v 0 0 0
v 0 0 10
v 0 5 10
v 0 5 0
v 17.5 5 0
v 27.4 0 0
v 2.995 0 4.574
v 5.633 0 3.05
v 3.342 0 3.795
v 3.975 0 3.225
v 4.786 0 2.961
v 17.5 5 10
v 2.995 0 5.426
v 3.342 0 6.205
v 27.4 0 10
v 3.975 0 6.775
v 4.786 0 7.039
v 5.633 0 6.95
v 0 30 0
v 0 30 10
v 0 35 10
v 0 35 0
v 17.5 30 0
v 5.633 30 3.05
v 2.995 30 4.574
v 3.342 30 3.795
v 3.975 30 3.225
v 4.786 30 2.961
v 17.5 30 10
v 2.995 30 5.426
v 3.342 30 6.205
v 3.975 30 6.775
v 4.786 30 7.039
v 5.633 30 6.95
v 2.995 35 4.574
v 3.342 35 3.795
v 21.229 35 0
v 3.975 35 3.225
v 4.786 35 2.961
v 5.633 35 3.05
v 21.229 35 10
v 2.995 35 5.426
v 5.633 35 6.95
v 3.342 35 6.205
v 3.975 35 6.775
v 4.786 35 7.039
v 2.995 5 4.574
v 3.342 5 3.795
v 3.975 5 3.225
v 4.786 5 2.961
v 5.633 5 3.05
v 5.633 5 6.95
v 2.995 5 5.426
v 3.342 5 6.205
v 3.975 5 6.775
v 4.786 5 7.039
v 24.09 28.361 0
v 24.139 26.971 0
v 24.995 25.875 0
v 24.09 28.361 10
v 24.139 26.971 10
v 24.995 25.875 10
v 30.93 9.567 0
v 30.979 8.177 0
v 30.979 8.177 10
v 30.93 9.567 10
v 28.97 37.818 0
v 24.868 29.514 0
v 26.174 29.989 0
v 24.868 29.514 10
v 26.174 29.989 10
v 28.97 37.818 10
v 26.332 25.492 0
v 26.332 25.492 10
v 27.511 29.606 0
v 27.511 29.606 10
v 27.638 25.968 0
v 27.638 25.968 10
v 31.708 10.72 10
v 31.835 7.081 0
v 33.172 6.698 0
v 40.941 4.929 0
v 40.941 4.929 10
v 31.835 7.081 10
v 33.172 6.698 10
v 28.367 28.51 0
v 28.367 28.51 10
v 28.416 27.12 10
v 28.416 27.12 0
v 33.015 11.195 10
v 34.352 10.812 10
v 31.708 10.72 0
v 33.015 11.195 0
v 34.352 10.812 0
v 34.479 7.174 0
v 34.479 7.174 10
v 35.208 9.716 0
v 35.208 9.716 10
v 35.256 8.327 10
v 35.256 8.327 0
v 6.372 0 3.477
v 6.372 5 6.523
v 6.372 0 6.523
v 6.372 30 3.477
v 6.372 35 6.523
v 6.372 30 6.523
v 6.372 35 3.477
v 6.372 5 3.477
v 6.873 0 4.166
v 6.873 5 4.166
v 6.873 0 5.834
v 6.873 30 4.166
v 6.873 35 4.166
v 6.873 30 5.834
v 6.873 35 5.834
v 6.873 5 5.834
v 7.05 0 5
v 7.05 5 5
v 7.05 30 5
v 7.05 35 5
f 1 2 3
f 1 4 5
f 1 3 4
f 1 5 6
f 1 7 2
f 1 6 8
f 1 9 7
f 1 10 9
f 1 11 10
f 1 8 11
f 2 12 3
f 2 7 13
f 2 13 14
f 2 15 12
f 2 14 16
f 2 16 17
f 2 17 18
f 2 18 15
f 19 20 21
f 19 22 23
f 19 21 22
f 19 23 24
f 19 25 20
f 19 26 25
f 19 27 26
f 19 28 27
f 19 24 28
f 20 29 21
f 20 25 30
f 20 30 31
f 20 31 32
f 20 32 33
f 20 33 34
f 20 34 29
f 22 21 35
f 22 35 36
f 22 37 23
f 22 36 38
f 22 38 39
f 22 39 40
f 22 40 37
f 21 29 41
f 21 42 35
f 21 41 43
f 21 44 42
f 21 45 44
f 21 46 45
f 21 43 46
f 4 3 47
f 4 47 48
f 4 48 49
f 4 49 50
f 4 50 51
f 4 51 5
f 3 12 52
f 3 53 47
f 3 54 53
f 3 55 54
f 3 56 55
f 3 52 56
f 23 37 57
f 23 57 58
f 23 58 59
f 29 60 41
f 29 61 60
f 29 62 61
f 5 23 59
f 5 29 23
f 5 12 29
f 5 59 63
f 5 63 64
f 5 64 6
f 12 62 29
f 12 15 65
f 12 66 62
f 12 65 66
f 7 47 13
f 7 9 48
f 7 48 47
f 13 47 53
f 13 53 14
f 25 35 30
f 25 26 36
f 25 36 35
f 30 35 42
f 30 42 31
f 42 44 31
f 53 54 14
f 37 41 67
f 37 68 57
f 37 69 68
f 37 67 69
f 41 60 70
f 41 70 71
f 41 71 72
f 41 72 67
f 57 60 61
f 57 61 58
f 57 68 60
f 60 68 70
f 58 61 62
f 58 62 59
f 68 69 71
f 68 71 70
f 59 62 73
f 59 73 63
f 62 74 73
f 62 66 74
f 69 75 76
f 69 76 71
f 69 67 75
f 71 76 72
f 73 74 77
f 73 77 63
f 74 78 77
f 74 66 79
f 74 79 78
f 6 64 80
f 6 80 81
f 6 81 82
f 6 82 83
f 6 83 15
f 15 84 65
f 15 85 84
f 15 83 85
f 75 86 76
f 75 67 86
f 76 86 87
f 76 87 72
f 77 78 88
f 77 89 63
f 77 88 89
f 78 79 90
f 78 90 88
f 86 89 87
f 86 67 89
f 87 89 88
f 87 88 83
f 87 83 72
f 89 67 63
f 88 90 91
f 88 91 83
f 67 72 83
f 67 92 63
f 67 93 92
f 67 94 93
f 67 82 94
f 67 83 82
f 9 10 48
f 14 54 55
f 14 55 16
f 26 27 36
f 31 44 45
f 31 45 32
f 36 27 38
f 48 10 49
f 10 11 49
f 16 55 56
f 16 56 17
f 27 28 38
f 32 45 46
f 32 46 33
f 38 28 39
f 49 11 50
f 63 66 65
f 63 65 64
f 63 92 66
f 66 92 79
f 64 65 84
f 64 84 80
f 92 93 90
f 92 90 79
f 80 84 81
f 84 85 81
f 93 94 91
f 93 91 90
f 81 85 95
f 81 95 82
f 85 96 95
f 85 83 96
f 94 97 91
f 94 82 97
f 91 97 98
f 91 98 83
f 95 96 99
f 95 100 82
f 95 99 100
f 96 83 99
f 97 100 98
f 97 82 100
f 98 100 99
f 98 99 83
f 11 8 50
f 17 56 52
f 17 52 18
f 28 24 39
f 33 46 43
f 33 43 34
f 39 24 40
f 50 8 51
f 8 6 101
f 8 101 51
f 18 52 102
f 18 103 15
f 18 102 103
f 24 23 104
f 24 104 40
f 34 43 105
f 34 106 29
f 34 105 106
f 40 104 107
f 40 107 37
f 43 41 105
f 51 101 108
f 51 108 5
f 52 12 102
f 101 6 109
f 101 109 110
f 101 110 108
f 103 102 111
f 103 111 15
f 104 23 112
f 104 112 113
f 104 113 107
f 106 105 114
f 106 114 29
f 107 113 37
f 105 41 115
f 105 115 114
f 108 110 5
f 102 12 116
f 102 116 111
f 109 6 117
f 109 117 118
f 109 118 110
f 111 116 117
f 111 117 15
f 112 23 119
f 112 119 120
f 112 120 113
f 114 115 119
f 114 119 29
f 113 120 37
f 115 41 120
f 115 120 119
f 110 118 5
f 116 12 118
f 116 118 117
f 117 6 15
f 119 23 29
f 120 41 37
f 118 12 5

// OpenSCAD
// file: ../Parameters.scad
//Main tube diameter - hole [mm]
main_tube_outer_diameter = 25.4;
main_tube_inner_diameter = 23.5;

//Tube for undercarriage - hole [mm]
tube_for_undercarriage_outer_diameter = 10.6;
tube_for_undercarriage_inner_diameter = 6;
global_clearance = 0.5;


//umístění podvozkových trubek

second_undercarriage_hole = main_tube_outer_diameter*2 + main_tube_outer_diameter/5 + main_tube_outer_diameter/2 + 170 + 160;

// Parameters of cube couplings
coupling_wall_thickness = main_tube_outer_diameter/5;  //width of coupling walls 
thickness_between_tubes = main_tube_outer_diameter/10;    // minimum distance between tubes in couplings

coupling_wall_thickness_undercarriage = tube_for_undercarriage_outer_diameter/3;
thickness_between_tubes_undercarriage = tube_for_undercarriage_outer_diameter/10;

//Screw diameter and nut for M4 [mm]
M4_screw_diameter=4.5;
Nut_height_M4 = 3.2;
Nut_diameter_M4 = 7.86;


//Screw diameter and nut for M3 [mm]
M3_screw_diameter = 3.2;
Nut_height_M3 = 1.7;	
Nut_diameter_M3 = 6.6; 


//The tube for help
Help_main_tube_outer = 25;
Help_main_tube_inner = 23; 
Help_tube_for_undercarriage_outer = 10;
Help_tube_for_undercarriage_inner = 5;


//main hull parameters

hull_drop_length = 580;
hull_wall_thickness = 0.8;
hull_y_size = 120;
hull_z_size = 150;
hull_x_size = 580;
hull_corner_radius = 4;
hull_airfoil_thickness= 35;  // thickness of drop generating airfoil in percent of lenght.
hull_scale_x = 1;
hull_scale_y = 1.5;
hull_scale_z = 1.5;

main_pilon_position = 170+68;
cover_pilon_position = 180;
height_of_vertical_tube = 275; //278mm je změřená délka trubky. 

ribbon_width = 5; // šířka vyztužovacích lemů. 

// šířka otvoru v přední části kapoty pro držák motoru.
width_of_engine_holder = 63;

//Top Cover Division - dělení horního krytu pro tisk
top_cover_division = [0, 50, 150, 280, 410, hull_x_size]; // upraveny seznam tak, aby deleni začinalo od nuly, což umožňí úplně automatické rozdělení.

//Bottom Cover Division - dělení dolního krytu pro tisk
bottom_cover_division = [0,100,250,365, 470, hull_x_size];
// zkrácená část pro payload pro testovací tisk
//bottom_cover_division = [0,200,250,365, 470, hull_x_size];

//Base Divison - dělení podložky
base_division = [0,140,280,410, hull_x_size];

//Cover pilon division - na výšku (v ose Z)
cover_pilon_division = [0,170,height_of_vertical_tube + main_tube_outer_diameter + coupling_wall_thickness];

//pozice šroubů
	//horní kryt
top_screw_position = [0, (top_cover_division[0] + top_cover_division[1])/4, (top_cover_division[2] - top_cover_division[1])/2 + top_cover_division[1], (top_cover_division[3] - top_cover_division[2])/2 + top_cover_division[2],(top_cover_division[4] - top_cover_division[3])/2 + top_cover_division[3],(top_cover_division[5] - top_cover_division[4])/2 + top_cover_division[4] - 20];
	//spodní kryt
bottom_screw_position = [0,(bottom_cover_division[0] + bottom_cover_division[1])/15 + 5, bottom_cover_division[1]/1.1, + bottom_cover_division[3], bottom_cover_division[3] + bottom_cover_division[1]/2, bottom_cover_division[4] - 6*global_clearance, bottom_cover_division[4] + bottom_cover_division[1]/2.5];




//šířka zámků
lock_width = 10;

//délka zámků
lock_length = 3;


//accumulator
//základní rozměry akumulátoru
width_of_accumulator = 129.4;//45+1;
depth_of_accumulator = 40.61;
height_of_accumulator = 43.65;
//Zapuštění akumulátoru
sink_of_accumulator = 5; //main_tube_outer_diameter/5 - Nut_height_M3*1.5;

//tloušťka hrany spojky
accumulator_holder_width = 18; 
accumulator_holder_thickness = 10; 

//posunutí akumálátoru na podložce
move_of_accumulator = 165;   // pozice akumulátoru (ovlivňuje těžiště)


////////////////
// Senzory
///////////////////

//opticalFlow
    width_optical_flow_senzor = 45.5;
    depth_optical_flow_senzor = 6;
    height_optical_flow_senzor = 35;
    sink_of_optical_flow_senzor = depth_optical_flow_senzor - 5; 
    M3_optical_flow_senzor_Z = 30.4;
    M3_optical_flow_senzor_X = 24;
    M3_optical_flow_senzor_Z_alone = 9.1;
    M3_optical_flow_senzor_X_alone = 16.7;
// file: lib/naca4.scad
// Naca4.scad - library for parametric airfoils of 4 digit NACA series
// Code: Rudolf Huttary, Berlin 
// June 2015
// commercial use prohibited


// general use: for more examples refer to sampler.scad
// naca = naca digits or 3el vector  (default = 12 or [0, 0, .12])
// L    = chord length [mm]      (default= 100)
// N    = # sample points        (default= 81)
// h    = height [mm]            (default= 1)
// open = close at the thin end? (default = true)
// two equivalent example calls
 airfoil(naca = 2408, L = 60, N=1001, h = 30, open = false); 
// airfoil(naca = [.2, .4, .32], L = 60, N=1001, h = 30, open = false); 

module help()
{
  echo(str("\n\nList of signatures in lib:\n=================\n", 
  "module airfoil(naca=2412, L = 100, N = 81, h = 1, open = false) - renders airfoil object\n", 
  "module airfoil(naca=[.2, .4, .12], L = 100, N = 81, h = 1, open = false) - renders airfoil object using percentage for camber,  camber distance and thicknes\n", 
  "function airfoil_data(naca=12, L = 100, N = 81, open = false)\n",
  "=================\n")); 
}

help(); 
// this is the object
module airfoil(naca=12, L = 100, N = 81, h = 1, open = false)
{
  linear_extrude(height = h)
  polygon(points = airfoil_data(naca, L, N, open)); 
}

module hollow_airfoil(lnaca=12, L = 100, N = 81, h = 1, open = false, wall_thickness = 1)
{
    if (open){
        linear_extrude(height = h)

        if (wall_thickness>0){
            difference(){
                polygon(points = airfoil_data(naca, L, N, false));
                offset(delta = - wall_thickness, chamfer = false) polygon(points = airfoil_data(naca, L, N, open = false));
            }
        }
        else{
            difference(){
                offset(delta = - wall_thickness, chamfer = false) polygon(points = airfoil_data(naca, L, N, open = false));
                polygon(points = airfoil_data(naca, L, N, false));
            }
        }
    }
    else{

        linear_extrude(height = abs(wall_thickness))
            polygon(points = airfoil_data(naca, L, N, false)); 

        linear_extrude(height = h)
            difference(){
                polygon(points = airfoil_data(naca, L, N, open));
                offset(delta = - wall_thickness) polygon(points = airfoil_data(naca, L, N, open = false));
            }

        translate([0,0, h - wall_thickness])
            linear_extrude(height = abs(wall_thickness))
                polygon(points = airfoil_data(naca, L, N, false)); 

    }
}


// this is the main function providing the airfoil data
function airfoil_data(naca=12, L = 100, N = 81, open = false) = 
  let(Na = len(naca)!=3?NACA(naca):naca)
  let(A = [.2969, -0.126, -.3516, .2843, open?-0.1015:-0.1036])
  [for (b=[-180:360/(N):179.99]) 
    let (x = (1-cos(b))/2)  
    let(yt = sign(b)*Na[2]/.2*(A*[sqrt(x), x, x*x, x*x*x, x*x*x*x])) 
    Na[0]==0?L*[x, yt]:L*camber(x, yt, Na[0], Na[1], sign(b))];  


function trailing_edge_angle(naca=12, open = false) = 
  let(Na = len(naca)!=3?NACA(naca):naca)
  let(A = [.2969, -0.126, -.3516, .2843, open?-0.1015:-0.1036])
  let (x =0.999)  // set x near to airfoil trailing edge
  let(yt = Na[2]/.2*(A*[sqrt(x), x, x*x, x*x*x, x*x*x*x])) // calculate distance from x-axis at previously set position
  atan2(yt,1-x);  // calculate angle of triangle between end of airfoil. The triange height corresponds to previously calculated distance from x-axis

function surface_angle(x = 0.5, naca=12, open = false) = 
  let(Na = len(naca)!=3?NACA(naca):naca)
  let(A = [0.2969, -0.126, -0.3516, 0.2843, open?-0.1015:-0.1036])
  let(dy = Na[2]/0.2*(A*[(1/2)*(1/sqrt(x)), 1, 2*x, 3*x*x, 4*x*x*x])) // calculate derivative of airfoil function at the x point
  atan(dy);  // calculate  the angle from function derivative

function surface_distance(x = 0.5, naca=12, open = false) = 
  let(Na = len(naca)!=3?NACA(naca):naca)
  let(A = [0.2969, -0.126, -0.3516, 0.2843, open?-0.1015:-0.1036])
  Na[2]/.2*(A*[sqrt(x), x, x*x, x*x*x, x*x*x*x]); // calculate distance from x-axis at previously set position

// helper functions
function NACA(naca) = 
  let (M = floor(naca/1000))
  let (P = floor((naca-M*1000)/100)) 
  [M/100, P/10, floor(naca-M*1000-P*100)/100];  

function camber(x, y, M, P, upper) = 
  let(yc = (x<P)?M/P/P*(2*P*x-x*x): M/(1-P)/(1-P)*(1 - 2*P + 2*P*x -x*x))
  let(dy = (x<P)?2*M/P/P*(P-x):2*M/(1-P)/(1-P)*(P-x))
  let(th = atan(dy))
  [upper ? x - y*sin(th):x + y*sin(th), upper ? yc + y*cos(th):yc - y*cos(th)];
// main file
use <./lib/naca4.scad>
include <../Parameters.scad>


module 666_1204(){
	difference(){
        union(){
            cube([27.4,35,10]);
            translate([27.4,0,0])
                rotate([0,0,20])
                    cube([14.41,35,10]);
        }
        // díra pro domek
        translate([0,5,-1])
            cube([17.5,25,12]);


        // díry pro čep
		translate([5,38,5])
            rotate([90,0,0])
                cylinder (h = 40, r = 4.1/2, $fn = 15);

        //díry pro přišroubování závěsu rotorového listu. 
        translate([27.4,0,0])
        rotate([0,0,20])
            union(){
                translate([14.41-6,6.46,-1]) 
                    cylinder (h = 12, r = M4_screw_diameter/2, $fn = 10);

                translate([14.41-6, 6.46+20,-1]) 
                    cylinder (h = 12, r = M4_screw_diameter/2, $fn = 10);
            }

	}
}
666_1204();
